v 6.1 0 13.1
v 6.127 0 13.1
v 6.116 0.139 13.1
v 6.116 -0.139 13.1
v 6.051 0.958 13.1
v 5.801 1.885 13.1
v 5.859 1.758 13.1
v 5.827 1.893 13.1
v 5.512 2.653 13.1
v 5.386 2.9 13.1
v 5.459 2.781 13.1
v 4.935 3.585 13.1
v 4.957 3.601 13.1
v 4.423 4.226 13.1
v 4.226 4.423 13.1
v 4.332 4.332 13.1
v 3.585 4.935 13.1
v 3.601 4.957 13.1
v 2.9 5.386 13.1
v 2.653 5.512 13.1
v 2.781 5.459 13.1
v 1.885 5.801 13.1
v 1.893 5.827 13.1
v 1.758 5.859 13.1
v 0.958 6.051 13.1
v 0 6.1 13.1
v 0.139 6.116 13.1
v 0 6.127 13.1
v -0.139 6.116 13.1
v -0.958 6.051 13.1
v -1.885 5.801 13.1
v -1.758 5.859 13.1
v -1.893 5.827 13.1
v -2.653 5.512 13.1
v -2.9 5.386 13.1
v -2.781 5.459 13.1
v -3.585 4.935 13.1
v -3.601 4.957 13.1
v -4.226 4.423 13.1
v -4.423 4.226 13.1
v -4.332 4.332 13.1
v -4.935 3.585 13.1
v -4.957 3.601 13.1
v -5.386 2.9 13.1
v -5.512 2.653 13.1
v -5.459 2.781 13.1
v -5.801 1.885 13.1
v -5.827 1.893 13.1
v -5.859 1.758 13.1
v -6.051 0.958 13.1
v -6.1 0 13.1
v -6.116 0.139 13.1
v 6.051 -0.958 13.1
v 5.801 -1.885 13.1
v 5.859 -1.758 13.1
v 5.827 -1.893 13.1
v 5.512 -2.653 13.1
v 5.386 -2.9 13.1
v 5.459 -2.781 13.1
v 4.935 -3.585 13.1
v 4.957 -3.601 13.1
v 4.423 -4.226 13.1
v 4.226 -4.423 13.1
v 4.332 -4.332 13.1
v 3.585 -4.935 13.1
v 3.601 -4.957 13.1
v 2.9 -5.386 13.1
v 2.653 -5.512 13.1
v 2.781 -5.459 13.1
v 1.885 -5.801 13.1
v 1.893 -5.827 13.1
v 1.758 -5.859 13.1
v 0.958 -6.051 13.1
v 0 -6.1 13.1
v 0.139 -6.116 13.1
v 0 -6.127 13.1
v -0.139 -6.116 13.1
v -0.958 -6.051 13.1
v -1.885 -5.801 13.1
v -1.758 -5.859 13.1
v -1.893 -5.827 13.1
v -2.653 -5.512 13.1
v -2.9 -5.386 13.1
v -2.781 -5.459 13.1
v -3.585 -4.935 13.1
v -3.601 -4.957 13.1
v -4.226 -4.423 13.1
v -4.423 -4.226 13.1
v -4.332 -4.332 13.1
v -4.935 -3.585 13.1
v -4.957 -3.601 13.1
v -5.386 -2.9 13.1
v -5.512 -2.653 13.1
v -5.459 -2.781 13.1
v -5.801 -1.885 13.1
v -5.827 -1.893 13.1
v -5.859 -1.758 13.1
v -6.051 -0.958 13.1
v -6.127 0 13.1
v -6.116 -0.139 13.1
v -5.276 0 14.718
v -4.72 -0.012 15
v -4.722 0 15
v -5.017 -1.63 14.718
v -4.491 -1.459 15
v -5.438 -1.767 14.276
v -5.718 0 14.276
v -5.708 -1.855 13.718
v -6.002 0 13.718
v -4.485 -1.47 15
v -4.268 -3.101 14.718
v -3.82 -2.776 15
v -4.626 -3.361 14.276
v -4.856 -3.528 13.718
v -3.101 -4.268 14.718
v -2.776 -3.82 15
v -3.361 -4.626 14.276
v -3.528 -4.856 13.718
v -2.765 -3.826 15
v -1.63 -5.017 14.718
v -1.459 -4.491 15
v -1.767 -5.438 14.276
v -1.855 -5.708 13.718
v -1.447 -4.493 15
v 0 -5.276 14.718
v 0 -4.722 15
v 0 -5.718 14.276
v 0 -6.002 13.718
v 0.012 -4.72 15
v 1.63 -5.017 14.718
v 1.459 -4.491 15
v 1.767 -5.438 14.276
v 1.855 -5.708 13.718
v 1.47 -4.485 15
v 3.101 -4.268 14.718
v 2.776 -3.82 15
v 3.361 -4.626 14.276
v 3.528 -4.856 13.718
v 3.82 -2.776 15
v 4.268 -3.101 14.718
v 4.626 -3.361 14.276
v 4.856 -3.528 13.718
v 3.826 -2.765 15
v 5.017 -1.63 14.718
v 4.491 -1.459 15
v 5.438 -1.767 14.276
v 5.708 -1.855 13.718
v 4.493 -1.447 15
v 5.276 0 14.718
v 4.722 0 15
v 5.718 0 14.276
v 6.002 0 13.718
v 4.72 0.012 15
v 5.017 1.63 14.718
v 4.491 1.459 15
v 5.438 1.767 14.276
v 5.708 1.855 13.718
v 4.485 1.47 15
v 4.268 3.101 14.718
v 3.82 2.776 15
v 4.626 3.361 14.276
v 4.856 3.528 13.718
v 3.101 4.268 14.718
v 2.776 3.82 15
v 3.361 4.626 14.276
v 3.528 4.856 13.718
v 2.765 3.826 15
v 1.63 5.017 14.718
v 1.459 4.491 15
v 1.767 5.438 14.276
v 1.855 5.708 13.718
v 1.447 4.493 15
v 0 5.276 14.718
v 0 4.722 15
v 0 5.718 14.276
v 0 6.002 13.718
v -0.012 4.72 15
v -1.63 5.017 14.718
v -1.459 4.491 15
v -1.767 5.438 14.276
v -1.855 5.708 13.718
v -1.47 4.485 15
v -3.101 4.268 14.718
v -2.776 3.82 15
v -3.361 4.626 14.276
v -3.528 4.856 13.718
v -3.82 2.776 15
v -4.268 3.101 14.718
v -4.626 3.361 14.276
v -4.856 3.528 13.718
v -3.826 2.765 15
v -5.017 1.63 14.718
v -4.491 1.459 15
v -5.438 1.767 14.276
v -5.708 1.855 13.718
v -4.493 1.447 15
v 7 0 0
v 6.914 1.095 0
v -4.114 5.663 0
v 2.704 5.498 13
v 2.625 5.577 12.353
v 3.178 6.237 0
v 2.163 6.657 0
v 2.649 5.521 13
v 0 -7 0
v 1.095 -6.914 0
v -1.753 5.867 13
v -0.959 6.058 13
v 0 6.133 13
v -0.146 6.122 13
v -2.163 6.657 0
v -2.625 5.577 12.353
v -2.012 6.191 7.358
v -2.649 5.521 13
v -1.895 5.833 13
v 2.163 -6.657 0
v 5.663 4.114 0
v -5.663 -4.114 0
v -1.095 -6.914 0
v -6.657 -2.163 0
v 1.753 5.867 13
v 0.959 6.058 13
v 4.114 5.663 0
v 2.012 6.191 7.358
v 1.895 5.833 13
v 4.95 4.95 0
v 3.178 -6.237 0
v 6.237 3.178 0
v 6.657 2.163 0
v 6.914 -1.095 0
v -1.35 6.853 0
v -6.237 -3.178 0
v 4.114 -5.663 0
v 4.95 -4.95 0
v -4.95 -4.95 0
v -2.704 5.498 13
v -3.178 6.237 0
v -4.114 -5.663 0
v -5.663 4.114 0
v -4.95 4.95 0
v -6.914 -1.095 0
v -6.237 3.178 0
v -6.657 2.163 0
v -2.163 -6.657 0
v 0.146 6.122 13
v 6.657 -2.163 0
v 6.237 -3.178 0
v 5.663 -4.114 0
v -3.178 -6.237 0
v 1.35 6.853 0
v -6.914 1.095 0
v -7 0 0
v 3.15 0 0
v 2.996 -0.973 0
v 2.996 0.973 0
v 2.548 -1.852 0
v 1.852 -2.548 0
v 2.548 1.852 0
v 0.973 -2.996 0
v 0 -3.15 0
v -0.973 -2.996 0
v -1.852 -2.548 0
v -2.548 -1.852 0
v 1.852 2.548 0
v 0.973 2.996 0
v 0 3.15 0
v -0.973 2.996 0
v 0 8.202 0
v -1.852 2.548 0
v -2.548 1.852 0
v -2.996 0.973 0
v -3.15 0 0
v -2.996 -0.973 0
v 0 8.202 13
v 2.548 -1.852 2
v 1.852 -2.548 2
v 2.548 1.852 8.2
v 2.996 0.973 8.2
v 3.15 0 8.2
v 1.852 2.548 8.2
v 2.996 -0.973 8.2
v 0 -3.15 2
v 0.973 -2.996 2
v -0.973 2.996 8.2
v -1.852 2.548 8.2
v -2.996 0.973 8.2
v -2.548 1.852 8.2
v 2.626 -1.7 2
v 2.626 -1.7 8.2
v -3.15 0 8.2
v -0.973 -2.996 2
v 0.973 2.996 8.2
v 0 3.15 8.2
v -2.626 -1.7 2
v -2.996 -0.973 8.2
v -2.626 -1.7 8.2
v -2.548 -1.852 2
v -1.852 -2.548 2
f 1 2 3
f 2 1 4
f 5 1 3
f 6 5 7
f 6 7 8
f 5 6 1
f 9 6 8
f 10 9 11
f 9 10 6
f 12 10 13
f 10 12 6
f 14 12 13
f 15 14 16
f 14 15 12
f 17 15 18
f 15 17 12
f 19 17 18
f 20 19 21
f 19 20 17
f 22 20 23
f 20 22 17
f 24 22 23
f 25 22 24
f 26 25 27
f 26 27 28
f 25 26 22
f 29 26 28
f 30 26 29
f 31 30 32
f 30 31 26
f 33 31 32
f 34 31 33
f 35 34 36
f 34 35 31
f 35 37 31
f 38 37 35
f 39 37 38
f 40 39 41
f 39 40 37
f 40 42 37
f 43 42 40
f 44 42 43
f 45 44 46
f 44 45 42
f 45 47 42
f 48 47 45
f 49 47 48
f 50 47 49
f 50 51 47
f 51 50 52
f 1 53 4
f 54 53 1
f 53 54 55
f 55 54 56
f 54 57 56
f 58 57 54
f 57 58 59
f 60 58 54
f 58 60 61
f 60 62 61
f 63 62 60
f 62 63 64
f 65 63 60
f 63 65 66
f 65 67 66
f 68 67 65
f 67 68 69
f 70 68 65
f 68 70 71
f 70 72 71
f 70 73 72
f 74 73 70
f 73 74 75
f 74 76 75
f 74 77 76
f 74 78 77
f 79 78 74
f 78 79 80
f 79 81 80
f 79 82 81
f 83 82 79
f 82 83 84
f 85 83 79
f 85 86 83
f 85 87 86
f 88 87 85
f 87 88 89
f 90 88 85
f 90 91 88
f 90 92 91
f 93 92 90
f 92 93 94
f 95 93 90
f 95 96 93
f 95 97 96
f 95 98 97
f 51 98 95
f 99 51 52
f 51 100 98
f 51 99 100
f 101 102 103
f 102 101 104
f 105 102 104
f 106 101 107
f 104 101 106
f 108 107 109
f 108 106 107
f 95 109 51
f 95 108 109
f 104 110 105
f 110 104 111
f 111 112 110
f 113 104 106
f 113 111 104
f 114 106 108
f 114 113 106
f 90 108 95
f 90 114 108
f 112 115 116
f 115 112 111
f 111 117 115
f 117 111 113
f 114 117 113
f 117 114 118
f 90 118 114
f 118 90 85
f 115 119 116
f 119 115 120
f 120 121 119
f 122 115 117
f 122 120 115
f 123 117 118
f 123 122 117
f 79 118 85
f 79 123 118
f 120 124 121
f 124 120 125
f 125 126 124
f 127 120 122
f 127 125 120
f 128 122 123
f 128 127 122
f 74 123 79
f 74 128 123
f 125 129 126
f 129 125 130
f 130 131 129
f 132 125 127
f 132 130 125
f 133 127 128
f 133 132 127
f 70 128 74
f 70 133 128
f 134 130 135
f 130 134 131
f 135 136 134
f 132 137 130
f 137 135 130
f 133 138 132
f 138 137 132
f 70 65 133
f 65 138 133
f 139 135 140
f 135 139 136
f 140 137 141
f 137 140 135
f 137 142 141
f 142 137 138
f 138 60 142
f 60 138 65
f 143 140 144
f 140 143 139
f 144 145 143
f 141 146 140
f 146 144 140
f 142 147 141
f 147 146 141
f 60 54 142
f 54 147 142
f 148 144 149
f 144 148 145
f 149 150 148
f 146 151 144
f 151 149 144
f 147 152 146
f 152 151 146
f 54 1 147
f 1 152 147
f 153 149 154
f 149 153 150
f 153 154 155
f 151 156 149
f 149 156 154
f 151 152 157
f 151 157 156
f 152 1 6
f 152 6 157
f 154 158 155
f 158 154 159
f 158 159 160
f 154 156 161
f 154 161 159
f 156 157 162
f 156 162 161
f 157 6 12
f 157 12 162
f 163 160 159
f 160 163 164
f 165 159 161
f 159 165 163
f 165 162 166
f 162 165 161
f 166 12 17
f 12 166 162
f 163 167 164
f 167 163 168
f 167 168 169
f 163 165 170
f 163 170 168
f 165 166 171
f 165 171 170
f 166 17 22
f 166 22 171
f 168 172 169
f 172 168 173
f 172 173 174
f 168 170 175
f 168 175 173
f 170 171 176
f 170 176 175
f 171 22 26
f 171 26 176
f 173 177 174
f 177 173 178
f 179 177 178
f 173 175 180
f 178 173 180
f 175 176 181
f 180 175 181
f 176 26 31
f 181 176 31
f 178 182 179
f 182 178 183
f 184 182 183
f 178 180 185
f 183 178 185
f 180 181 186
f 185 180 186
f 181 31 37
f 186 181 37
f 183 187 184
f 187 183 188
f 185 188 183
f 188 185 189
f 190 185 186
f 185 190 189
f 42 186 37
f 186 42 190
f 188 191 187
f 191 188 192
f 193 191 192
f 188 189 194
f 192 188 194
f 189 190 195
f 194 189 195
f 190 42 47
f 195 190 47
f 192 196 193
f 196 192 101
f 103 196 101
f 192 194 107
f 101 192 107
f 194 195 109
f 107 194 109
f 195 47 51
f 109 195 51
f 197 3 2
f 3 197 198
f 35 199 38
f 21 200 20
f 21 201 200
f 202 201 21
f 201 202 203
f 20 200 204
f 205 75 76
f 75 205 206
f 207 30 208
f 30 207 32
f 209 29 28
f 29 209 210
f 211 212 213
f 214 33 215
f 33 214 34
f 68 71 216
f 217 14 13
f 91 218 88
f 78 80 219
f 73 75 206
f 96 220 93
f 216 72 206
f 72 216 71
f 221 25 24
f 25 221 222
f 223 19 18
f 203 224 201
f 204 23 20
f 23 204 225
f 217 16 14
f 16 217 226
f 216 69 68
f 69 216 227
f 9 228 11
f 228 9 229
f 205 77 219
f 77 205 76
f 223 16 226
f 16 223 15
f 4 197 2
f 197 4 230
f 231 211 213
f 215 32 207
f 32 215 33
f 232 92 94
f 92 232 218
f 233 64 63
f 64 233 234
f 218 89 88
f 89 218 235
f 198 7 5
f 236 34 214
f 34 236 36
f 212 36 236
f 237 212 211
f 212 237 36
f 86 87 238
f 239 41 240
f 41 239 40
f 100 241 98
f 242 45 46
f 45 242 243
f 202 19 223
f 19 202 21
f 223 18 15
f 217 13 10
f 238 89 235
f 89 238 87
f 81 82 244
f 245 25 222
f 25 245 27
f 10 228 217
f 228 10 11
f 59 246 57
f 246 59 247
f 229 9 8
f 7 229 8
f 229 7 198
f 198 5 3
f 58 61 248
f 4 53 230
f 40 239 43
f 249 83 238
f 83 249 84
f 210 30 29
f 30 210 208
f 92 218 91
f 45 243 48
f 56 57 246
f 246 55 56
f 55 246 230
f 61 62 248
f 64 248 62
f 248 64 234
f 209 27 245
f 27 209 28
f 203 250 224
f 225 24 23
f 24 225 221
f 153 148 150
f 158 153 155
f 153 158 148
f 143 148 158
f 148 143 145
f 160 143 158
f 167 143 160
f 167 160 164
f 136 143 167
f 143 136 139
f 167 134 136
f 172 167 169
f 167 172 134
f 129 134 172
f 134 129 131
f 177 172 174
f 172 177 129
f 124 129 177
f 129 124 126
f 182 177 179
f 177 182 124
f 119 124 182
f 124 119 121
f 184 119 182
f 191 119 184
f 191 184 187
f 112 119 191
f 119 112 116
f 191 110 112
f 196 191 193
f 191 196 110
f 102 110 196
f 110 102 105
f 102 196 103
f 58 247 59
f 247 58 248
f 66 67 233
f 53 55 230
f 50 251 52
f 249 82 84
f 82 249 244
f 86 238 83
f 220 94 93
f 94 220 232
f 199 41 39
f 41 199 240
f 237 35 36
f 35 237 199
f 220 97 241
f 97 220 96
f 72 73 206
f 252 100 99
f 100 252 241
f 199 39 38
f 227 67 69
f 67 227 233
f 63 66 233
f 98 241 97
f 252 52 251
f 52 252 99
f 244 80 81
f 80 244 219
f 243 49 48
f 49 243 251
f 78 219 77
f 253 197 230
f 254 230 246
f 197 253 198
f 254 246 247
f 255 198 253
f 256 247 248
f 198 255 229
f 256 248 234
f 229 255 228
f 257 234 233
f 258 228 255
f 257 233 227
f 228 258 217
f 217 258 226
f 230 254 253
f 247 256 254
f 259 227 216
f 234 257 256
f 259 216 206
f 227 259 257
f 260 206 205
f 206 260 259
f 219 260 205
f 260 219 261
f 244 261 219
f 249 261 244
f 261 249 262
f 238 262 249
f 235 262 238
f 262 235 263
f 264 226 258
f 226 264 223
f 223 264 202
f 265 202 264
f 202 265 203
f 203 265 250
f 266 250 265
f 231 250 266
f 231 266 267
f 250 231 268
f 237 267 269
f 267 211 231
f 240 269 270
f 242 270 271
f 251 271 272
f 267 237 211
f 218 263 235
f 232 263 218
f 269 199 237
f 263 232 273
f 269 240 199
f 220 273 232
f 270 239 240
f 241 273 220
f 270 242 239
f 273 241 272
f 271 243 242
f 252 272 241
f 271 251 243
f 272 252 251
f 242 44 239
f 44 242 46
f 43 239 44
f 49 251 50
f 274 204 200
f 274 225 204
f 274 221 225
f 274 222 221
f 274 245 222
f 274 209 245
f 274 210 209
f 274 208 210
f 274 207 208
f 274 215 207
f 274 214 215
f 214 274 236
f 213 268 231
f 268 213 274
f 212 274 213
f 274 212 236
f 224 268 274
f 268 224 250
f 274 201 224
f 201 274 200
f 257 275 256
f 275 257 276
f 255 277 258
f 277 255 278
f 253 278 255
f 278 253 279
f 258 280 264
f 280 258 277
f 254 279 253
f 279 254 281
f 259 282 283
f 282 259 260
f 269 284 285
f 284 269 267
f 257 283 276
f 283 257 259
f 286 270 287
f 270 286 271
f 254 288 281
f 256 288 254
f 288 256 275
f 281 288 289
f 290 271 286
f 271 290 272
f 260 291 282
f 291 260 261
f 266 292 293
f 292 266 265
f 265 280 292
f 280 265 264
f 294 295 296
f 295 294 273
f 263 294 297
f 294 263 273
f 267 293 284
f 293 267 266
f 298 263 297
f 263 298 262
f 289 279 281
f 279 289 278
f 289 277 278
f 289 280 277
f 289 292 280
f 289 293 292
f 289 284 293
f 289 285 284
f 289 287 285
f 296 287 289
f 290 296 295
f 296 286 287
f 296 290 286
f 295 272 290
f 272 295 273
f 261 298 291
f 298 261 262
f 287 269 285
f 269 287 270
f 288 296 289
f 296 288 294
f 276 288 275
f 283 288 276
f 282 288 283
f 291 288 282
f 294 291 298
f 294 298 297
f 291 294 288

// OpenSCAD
/*

Parametric Potentiometer Knob Generator
version 1.1
2012 Steve Cooley
http://sc-fa.com
http://beatseqr.com
http://hapticsynapses.com

parametric potentiometer knob generator by steve cooley is licensed under a Creative Commons Attribution-NonCommercial-ShareAlike 3.0 Unported License. Based on a work at sc-fa.com. Permissions beyond the scope of this license may be available at http://sc-fa.com/blog/contact.

view terms of the license here:
http://creativecommons.org/licenses/by-nc-sa/3.0/


version history
---------------
1.1 2012-04-12 fixed the arrow indicator code to be more robust and easier to adjust parameters for.
1.0 2012-03-?? initial release.


*/


//
//
// Physical attributes, basic
//
//

knob_radius_top = 6;
knob_radius_bottom = 7;
knob_height = 15;
knob_smoothness = 40;

shaft_radius = 3.15;
shaft_height = 9.2;
shaft_smoothness = 20;

shaft_is_flatted = true;
flat_size_adjustment = 0.8;
// you won't need to mess with this. less than 5 makes it disappear. you can, however,
// set the adjustment to be a negative decimal if you need a flat but not as big as the default.
// go positive if you need a bigger flat
flat_size = 5 + flat_size_adjustment;

// some potentiometers need to have their knobs affixed with a set screw.
set_screw = false;
set_screw_radius = 1.5;
set_screw_depth = 9;
set_screw_height = 4;
quality_of_set_screw = 20;

//
//
// Decorations
//
//

//
// top edge smoothing
// thanks to http://www.iheartrobotics.com/ for the articles!
//

smoothing = true;
smoothing_radius = 2;				// tweak on this one, how much smoothing to apply
smooth = 20;						// tweak on this one, Number of facets of rounding cylinder

ct = -0.1; 							// circle translate? not sure.
circle_radius = knob_radius_top;  	// just match the top edge radius
circle_height = 1; 					// actually.. I don't know what this does.
pad = 0.2;							// Padding to maintain manifold


//
// directional indicators
//

// this is a corner edge of a cube sticking out of the cylinder at the bottom
// you can use it instead of the arrow shaped cutout in the top if you like. Or both.

pointy_external_indicator = true;
pointy_external_indicator_height = 13;
pointy_external_indicator_pokey_outey_ness = 0.0; //
pokey_outey_value = pointy_external_indicator_pokey_outey_ness - 1 - pad;
pokey_outey = [pokey_outey_value, pokey_outey_value,0];

// there's an arrow shaped hole you can have. There aren't a lot of controls for this.
// please feel free to improve on this script here.

arrow_indicator = false;
arrow_indicator_scale = 0.4;
arrow_indicator_translate = [0,1,16];
arrow_scale_head = 2;
arrow_scale_shaft = 1.5;

//
// indentations
//

// for spherical indentations, set the quantity, quality, size, and adjust the placement
indentations_sphere = false;
sphere_number_of_indentations = 12;
sphere_quality_of_indentations = 4;
size_of_sphere_indentations = 4;
// the first number in this set moves the spheres in or out. smaller is closer to the middle
// the second number in this set moves the spheres left or right
// the third number in this set moves the speheres up or down
translation_of_sphere_indentations = [10,0,15];
// in case you are using an odd number of indentations, you way want to adjust the starting angle
// so that they align to the front or set screw locations.
sphere_starting_rotation = 90;

// for cylinder indentations, set quantity, quality, radius, height, and placement
indentations_cylinder = false;
cylinder_number_of_indentations = 10;
cylinder_quality_of_indentations = 50;
radius_of_cylinder_indentations_top = 3;
radius_of_cylinder_indentations_bottom = 5;
height_of_cylinder_indentations = 12;
translation_of_cylinder_indentations = [0,8,-8];
cylinder_starting_rotation = -33.3;

// these are some setup variables... you probably won't need to mess with them.
negative_knob_radius = knob_radius_bottom*-1;


// this is the main module. It calls the submodules.
make_the_knob();

module make_the_knob()
{
	difference()
		{
		difference()
			{

			difference()
				{
				difference()
					{

					union()
						{

						difference()
							{
							// main cylinder
							cylinder(r1=knob_radius_bottom,r2=knob_radius_top,h=knob_height, $fn=knob_smoothness);

							smoothing();

							}

						external_direction_indicator();
						}

					shaft_hole();
					}

				set_screw_hole();
				}

			arrow_indicator();
			indentations();
		}
	}

}

module smoothing() {

// smoothing the top
				if(smoothing == true)
					{
						translate([0,0,knob_height])
						rotate([180,0,0])
						difference() {
							rotate_extrude(convexity=10,  $fn = smooth)
							translate([circle_radius-ct-smoothing_radius+pad,ct-pad,0])
							square(smoothing_radius+pad,smoothing_radius+pad);

							rotate_extrude(convexity=10,  $fn = smooth)
							translate([circle_radius-ct-smoothing_radius,ct+smoothing_radius,0])
							circle(r=smoothing_radius,$fn=smooth);
							}
					}
}

module external_direction_indicator() {

				if(pointy_external_indicator == true)
						{


						// outer pointy indicator
						rotate([0,0,45])
						translate(pokey_outey)
						// cube size of 8 minimum to point out
						cube(size=[knob_radius_bottom,knob_radius_bottom,pointy_external_indicator_height],center=false);
						}

}

module shaft_hole() {
				// shaft hole
				difference()
					{

					// round shaft hole
					translate([ 0, 0, -1 ])
					cylinder(r=shaft_radius,h=shaft_height, $fn=shaft_smoothness);

					if(shaft_is_flatted == true)
						{
						// D shaft shape for shaft cutout
						rotate( [0,0,90])
						translate([-7.5,-5,2])
						cube(size=[flat_size,10,13],center=false);
						}
					}
}


module set_screw_hole() {

			if(set_screw == true)
				{
				// set screw hole
				rotate ([90,0,0])
				translate([ 0, set_screw_height, 1 ])
				cylinder(r=set_screw_radius,h=set_screw_depth, $fn=quality_of_set_screw);
				}
}

module arrow_indicator() {
		if(arrow_indicator == true)
			{
			translate(arrow_indicator_translate)
			// begin arrow top cutout
			// translate([(knob_radius/2),knob_height,knob_height])
			rotate([90,0,45])
			scale([arrow_indicator_scale*.3,arrow_indicator_scale*.3,arrow_indicator_scale*.3])
			union()
				{
				rotate([90,45,0])
				scale([arrow_scale_head,arrow_scale_head,1])
				cylinder(r=8, h=10, $fn=3, center=true);
				rotate([90,45,0])
				translate([-10,0,0])
				scale([arrow_scale_shaft,arrow_scale_shaft,1])
				cube(size=[15,10,10],center=true);
				}
			}
}

module indentations() {

if(indentations_sphere == true)
			{
			for (z = [0:sphere_number_of_indentations])
				{
				rotate([0,0,sphere_starting_rotation+((360/sphere_number_of_indentations)*z)])
				translate(translation_of_sphere_indentations)
				sphere(size_of_sphere_indentations, $fn=sphere_quality_of_indentations);
				}
			}
if(indentations_cylinder == true)
			{
			for (z = [0:cylinder_number_of_indentations])
				{
				rotate([0,0,cylinder_starting_rotation+((360/cylinder_number_of_indentations)*z)])

				translate([negative_knob_radius,0,knob_height])
				translate(translation_of_cylinder_indentations)
				cylinder(r1=radius_of_cylinder_indentations_bottom, r2=radius_of_cylinder_indentations_top, h=height_of_cylinder_indentations, center=true, $fn=cylinder_quality_of_indentations);
				}
			}
		}
